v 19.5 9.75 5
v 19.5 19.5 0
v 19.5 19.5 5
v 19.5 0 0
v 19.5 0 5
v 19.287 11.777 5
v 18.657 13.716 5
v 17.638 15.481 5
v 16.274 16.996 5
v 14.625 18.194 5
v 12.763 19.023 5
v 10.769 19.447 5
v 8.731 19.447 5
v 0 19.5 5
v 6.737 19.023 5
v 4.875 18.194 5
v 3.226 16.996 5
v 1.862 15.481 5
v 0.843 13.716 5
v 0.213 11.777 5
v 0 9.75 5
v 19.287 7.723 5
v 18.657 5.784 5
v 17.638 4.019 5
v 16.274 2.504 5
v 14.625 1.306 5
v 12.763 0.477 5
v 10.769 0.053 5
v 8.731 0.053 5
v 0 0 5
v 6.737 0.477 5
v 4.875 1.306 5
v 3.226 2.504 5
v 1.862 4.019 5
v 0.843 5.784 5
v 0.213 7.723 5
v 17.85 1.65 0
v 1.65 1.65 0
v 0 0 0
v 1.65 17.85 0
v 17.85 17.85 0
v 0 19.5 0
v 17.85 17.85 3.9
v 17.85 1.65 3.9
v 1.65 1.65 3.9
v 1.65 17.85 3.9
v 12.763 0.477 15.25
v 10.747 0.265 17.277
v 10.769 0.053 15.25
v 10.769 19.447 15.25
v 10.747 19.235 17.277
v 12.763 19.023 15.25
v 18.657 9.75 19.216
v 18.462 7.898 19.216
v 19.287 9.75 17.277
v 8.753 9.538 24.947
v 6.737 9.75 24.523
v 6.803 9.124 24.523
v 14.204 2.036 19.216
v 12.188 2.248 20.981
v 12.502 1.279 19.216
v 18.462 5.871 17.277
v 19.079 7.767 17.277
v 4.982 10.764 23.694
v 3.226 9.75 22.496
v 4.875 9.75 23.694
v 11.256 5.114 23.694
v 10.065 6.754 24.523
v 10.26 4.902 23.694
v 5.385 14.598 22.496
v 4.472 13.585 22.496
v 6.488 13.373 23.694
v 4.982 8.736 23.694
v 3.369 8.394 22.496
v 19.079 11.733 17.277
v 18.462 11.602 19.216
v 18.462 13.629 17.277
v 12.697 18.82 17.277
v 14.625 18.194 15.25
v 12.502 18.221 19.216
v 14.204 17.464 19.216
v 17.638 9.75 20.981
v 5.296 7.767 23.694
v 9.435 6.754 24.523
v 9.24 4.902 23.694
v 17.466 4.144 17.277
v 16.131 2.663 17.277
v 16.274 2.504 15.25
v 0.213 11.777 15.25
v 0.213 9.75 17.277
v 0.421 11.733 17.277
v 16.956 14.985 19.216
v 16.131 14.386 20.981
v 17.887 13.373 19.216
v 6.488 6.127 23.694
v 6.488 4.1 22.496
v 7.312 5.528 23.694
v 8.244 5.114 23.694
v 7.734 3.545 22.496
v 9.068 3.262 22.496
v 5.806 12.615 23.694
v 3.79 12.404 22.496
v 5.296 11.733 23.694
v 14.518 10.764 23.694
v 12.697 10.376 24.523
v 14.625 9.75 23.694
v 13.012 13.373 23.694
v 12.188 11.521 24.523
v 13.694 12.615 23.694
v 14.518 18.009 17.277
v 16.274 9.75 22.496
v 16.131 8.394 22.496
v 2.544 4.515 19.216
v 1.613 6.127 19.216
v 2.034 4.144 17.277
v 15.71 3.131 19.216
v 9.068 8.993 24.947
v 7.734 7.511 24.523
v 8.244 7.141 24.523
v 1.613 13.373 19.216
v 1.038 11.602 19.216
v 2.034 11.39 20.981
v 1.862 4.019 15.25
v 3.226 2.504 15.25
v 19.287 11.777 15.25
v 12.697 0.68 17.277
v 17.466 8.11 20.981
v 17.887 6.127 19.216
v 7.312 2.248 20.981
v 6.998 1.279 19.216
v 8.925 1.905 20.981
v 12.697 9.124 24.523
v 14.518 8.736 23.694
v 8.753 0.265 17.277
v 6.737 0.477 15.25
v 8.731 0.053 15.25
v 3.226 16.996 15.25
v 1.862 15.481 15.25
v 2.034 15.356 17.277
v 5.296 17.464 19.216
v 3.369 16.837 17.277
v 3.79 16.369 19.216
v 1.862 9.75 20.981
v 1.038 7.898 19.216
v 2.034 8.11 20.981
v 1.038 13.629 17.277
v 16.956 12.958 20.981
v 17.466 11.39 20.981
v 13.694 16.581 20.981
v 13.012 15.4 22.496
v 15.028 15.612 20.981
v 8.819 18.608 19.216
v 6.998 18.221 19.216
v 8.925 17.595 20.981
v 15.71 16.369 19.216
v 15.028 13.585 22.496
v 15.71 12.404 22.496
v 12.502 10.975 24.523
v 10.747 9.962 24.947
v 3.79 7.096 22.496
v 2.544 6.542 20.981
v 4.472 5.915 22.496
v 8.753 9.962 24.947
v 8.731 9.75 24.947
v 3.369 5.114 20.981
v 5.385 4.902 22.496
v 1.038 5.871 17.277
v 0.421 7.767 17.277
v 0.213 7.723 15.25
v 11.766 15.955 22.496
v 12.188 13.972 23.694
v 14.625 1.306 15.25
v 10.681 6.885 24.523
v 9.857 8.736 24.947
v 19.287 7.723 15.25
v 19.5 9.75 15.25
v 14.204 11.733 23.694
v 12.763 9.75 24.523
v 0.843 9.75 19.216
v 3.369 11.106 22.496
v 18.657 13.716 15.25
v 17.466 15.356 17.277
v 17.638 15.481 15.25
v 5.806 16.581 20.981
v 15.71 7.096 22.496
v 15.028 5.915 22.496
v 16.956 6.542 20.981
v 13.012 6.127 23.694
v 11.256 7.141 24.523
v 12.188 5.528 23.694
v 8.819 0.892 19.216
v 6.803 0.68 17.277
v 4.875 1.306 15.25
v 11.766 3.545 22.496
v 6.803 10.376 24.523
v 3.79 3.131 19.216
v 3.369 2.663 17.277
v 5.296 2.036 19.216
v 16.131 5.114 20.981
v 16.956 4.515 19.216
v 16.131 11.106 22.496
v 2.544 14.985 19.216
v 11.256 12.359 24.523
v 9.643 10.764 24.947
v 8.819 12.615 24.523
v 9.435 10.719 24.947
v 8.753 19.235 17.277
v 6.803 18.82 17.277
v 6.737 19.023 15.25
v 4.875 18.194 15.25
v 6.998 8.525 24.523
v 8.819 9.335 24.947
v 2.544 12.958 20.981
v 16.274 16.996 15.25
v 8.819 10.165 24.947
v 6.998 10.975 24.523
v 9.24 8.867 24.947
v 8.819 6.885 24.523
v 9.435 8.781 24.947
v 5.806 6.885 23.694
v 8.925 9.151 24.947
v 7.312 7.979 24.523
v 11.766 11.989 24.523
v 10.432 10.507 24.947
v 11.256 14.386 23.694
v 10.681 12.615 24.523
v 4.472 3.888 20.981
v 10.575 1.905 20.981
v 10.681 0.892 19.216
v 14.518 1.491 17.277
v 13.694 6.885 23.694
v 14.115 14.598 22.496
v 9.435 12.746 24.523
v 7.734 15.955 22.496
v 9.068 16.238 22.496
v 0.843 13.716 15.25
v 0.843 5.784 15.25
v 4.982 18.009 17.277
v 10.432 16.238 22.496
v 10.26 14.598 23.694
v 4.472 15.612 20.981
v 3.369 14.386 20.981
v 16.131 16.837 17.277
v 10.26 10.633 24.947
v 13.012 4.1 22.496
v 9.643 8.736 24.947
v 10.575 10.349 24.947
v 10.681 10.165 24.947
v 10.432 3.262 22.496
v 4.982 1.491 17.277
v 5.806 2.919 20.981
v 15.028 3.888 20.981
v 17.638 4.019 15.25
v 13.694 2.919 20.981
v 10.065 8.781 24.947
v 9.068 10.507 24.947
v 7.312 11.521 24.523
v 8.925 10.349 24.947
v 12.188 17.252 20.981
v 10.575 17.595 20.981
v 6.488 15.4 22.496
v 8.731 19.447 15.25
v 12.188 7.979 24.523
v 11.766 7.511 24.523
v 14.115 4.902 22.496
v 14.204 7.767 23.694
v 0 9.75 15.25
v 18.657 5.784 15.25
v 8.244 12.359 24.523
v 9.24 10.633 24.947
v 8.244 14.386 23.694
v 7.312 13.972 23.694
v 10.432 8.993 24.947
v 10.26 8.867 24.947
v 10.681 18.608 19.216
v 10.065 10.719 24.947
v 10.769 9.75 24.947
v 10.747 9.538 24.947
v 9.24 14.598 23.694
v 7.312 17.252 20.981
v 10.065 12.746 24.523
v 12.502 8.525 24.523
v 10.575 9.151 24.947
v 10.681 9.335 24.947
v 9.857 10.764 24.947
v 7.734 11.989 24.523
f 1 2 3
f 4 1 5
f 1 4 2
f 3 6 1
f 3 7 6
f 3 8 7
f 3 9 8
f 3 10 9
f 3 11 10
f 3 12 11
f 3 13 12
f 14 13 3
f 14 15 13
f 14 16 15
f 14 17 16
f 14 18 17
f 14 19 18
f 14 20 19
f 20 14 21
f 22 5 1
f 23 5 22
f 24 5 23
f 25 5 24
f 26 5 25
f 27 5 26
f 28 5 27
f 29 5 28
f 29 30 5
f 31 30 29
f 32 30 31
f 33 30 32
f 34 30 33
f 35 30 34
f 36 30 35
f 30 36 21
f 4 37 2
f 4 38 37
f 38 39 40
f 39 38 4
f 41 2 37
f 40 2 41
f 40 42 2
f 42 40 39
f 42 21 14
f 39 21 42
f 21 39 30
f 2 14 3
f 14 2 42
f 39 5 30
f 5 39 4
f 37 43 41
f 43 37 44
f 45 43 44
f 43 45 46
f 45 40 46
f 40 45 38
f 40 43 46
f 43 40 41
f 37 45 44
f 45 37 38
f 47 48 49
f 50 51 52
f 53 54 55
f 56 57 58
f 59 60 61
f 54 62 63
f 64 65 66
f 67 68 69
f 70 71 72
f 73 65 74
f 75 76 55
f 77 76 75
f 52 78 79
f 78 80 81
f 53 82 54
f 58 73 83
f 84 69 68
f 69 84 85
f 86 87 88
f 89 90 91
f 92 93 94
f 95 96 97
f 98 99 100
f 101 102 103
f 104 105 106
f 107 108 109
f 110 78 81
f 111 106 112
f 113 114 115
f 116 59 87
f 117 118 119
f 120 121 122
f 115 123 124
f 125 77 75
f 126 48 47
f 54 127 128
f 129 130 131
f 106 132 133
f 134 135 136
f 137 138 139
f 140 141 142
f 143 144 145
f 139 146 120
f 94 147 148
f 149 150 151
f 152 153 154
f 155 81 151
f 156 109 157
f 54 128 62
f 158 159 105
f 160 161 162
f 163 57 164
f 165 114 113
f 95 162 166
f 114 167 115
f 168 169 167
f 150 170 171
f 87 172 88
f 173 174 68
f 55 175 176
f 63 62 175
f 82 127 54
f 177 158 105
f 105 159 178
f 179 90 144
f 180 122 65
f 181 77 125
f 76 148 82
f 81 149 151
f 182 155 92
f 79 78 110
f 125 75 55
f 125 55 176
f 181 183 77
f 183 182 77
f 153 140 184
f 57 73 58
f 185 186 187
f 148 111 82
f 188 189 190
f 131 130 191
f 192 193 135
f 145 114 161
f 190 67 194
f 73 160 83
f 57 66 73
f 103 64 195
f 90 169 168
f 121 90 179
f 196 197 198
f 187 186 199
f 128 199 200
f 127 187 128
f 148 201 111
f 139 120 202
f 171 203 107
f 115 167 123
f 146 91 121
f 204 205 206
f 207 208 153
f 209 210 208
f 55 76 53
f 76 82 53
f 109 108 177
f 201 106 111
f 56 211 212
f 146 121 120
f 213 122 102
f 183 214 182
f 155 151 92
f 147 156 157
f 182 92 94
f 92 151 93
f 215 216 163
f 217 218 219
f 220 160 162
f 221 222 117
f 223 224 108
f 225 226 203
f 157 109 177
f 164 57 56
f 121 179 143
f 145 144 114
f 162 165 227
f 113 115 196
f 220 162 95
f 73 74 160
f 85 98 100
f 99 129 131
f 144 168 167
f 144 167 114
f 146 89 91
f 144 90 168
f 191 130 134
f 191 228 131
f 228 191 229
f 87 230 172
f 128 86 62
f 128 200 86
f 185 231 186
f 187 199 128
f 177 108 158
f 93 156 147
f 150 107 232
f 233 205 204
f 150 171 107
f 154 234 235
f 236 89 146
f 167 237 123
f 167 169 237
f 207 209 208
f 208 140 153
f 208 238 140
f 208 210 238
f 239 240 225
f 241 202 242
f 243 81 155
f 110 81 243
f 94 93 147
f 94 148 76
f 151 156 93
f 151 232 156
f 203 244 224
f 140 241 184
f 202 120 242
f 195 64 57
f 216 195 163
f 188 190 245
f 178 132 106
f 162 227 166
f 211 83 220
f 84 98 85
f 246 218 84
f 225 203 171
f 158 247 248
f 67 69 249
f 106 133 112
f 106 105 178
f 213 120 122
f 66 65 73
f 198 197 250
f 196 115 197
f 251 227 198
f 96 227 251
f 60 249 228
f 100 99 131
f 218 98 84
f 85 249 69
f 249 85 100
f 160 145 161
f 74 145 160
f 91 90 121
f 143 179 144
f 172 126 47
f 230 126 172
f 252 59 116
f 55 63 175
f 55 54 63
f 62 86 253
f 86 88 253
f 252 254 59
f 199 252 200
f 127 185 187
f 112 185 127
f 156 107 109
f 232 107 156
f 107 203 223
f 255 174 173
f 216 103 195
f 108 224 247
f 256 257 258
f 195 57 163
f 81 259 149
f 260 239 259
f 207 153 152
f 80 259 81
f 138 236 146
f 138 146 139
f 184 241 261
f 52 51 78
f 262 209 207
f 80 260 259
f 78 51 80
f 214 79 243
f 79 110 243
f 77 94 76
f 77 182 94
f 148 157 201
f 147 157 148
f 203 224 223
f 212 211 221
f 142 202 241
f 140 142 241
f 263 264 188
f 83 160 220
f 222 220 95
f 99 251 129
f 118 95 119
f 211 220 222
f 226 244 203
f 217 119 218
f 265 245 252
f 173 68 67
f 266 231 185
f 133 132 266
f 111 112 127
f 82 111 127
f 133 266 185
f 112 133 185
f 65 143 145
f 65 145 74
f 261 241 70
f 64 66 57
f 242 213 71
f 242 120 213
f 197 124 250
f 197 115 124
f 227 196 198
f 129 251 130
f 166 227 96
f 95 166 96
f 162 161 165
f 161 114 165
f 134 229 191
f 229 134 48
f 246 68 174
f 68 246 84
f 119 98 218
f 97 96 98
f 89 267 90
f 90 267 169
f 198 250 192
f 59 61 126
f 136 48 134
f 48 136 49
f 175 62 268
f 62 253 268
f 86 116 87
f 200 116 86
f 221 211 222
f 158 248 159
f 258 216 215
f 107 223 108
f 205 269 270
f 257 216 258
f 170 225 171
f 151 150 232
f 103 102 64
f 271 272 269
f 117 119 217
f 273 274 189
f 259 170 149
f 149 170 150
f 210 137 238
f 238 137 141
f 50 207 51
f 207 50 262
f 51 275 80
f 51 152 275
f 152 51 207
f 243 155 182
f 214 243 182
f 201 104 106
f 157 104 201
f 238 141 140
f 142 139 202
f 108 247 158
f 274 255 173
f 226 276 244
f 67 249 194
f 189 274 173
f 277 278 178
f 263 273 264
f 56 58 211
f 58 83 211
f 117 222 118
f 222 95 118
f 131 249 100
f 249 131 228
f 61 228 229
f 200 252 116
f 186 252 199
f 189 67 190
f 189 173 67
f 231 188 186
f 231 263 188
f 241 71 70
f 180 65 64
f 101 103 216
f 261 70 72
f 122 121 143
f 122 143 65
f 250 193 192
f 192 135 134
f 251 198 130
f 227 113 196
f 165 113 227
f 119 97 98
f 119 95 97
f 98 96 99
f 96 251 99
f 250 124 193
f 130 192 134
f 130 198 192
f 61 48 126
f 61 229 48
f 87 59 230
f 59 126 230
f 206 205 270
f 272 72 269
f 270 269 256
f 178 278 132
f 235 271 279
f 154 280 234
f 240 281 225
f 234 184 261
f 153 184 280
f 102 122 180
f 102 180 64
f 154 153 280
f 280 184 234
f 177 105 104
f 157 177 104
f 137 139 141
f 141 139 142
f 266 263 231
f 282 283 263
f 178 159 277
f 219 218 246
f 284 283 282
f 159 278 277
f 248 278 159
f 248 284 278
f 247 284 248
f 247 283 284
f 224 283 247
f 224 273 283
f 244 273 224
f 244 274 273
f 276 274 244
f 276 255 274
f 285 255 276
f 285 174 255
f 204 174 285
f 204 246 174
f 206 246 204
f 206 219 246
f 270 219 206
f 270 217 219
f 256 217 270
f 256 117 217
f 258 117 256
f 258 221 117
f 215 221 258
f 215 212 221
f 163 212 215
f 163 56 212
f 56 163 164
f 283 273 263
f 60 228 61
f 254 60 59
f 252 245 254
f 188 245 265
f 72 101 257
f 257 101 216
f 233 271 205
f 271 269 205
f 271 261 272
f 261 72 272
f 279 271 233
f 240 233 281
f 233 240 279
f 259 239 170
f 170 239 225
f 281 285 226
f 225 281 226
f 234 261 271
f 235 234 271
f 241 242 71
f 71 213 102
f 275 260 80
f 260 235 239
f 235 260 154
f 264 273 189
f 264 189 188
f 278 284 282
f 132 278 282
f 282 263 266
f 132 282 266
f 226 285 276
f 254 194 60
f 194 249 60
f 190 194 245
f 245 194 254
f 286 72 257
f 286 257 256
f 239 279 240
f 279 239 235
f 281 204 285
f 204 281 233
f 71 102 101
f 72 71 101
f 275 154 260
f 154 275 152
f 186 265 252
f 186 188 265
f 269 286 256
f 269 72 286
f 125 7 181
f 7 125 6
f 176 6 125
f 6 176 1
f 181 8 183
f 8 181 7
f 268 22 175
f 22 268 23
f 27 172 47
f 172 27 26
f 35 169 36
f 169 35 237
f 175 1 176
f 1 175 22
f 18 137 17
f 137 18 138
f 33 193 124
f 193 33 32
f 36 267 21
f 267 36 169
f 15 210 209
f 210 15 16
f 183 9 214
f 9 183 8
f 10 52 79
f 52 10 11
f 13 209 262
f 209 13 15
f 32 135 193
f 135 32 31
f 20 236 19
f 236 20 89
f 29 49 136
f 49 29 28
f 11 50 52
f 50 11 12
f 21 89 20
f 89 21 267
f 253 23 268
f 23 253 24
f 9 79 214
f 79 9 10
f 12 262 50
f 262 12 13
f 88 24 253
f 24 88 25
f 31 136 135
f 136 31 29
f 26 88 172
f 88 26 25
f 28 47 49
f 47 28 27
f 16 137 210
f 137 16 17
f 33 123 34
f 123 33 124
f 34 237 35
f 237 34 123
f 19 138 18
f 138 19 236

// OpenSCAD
// file: CommonModules.scad
//    $$$$$$\   $$$$$$\   $$$$$$\  $$\   $$\ $$$$$$\ $$$$$$$\  $$$$$$$$\ 
//    $$  __$$\ $$  __$$\ $$  __$$\ $$ |  $$ |\_$$  _|$$  __$$\ $$  _____|
//    $$ /  $$ |$$ /  \__|$$ /  $$ |$$ |  $$ |  $$ |  $$ |  $$ |$$ |      
//    $$$$$$$$ |$$ |      $$ |  $$ |$$ |  $$ |  $$ |  $$$$$$$  |$$$$$\    
//    $$  __$$ |$$ |      $$ |  $$ |$$ |  $$ |  $$ |  $$  __$$< $$  __|   
//    $$ |  $$ |$$ |  $$\ $$ $$\$$ |$$ |  $$ |  $$ |  $$ |  $$ |$$ |      
//    $$ |  $$ |\$$$$$$  |\$$$$$$ / \$$$$$$  |$$$$$$\ $$ |  $$ |$$$$$$$$\ 
//    \__|  \__| \______/  \___$$$\  \______/ \______|\__|  \__|\________|
//                            \___|                                      
//      
//       Print and play - OpenScad project - by Bekkalizer and ChatGPT
// 
// This file is part of the Acquire stl project.
// Copyright (C) 2025 Bekkalizer
//
// Acquire stl project is free software: you can redistribute it and/or modify
// it under the terms of the GNU General Public License as published
// by the Free Software Foundation, either version 3 of the License,
// or (at your option) any later version.
//
// Acquire stl project is distributed in the hope that it will be useful,
// but WITHOUT ANY WARRANTY; without even the implied warranty of
// MERCHANTABILITY or FITNESS FOR A PARTICULAR PURPOSE. See the
// GNU General Public License for more details.
//
// You should have received a copy of the GNU General Public License
// along with this program. If not, see <https://www.gnu.org/licenses/>.

module cube_with_extruded_bottom( cube_size = [19.5, 19.5, 5] ) {
    //Main build script parameters:
    max_width = 19.2;
    top_lip = 2;
    top_height = 3;
    //Calculated hole size:
    inside_margins = 1;
    hole_width = max_width - 2 * (top_lip) + inside_margins;
    hole_height = top_height + inside_margins;
    
    hole_size = [hole_width, hole_width, hole_height]; // Hole dimensions (same height as cube)
    hole_offset = [(cube_size[0] - hole_size[0]) / 2, (cube_size[1] - hole_size[1]) / 2, -0.1]; // Centered on bottom
    difference() {
        // Main Cube
        cube(cube_size);
        
        // Hole Cube (subtracting from bottom)
        translate(hole_offset)
            cube(hole_size);
    }
}
// main file
//    $$$$$$\   $$$$$$\   $$$$$$\  $$\   $$\ $$$$$$\ $$$$$$$\  $$$$$$$$\ 
//    $$  __$$\ $$  __$$\ $$  __$$\ $$ |  $$ |\_$$  _|$$  __$$\ $$  _____|
//    $$ /  $$ |$$ /  \__|$$ /  $$ |$$ |  $$ |  $$ |  $$ |  $$ |$$ |      
//    $$$$$$$$ |$$ |      $$ |  $$ |$$ |  $$ |  $$ |  $$$$$$$  |$$$$$\    
//    $$  __$$ |$$ |      $$ |  $$ |$$ |  $$ |  $$ |  $$  __$$< $$  __|   
//    $$ |  $$ |$$ |  $$\ $$ $$\$$ |$$ |  $$ |  $$ |  $$ |  $$ |$$ |      
//    $$ |  $$ |\$$$$$$  |\$$$$$$ / \$$$$$$  |$$$$$$\ $$ |  $$ |$$$$$$$$\ 
//    \__|  \__| \______/  \___$$$\  \______/ \______|\__|  \__|\________|
//                            \___|                                      
//      
//       Print and play - OpenScad project - by Bekkalizer and ChatGPT

use <CommonModules.scad>

dome_height = 25;

// Parameters
bottom_width = 19.5;
bottom_height = 5;

dome_radius = bottom_width/2;

union () {
    cube_with_extruded_bottom([bottom_width, bottom_width, bottom_height]);

    translate([dome_radius,dome_radius,dome_height-dome_radius])
        sphere(dome_radius);
    translate([dome_radius,dome_radius,bottom_height])
        cylinder(h = (dome_height-dome_radius-bottom_height),r = dome_radius, center = false);
}
